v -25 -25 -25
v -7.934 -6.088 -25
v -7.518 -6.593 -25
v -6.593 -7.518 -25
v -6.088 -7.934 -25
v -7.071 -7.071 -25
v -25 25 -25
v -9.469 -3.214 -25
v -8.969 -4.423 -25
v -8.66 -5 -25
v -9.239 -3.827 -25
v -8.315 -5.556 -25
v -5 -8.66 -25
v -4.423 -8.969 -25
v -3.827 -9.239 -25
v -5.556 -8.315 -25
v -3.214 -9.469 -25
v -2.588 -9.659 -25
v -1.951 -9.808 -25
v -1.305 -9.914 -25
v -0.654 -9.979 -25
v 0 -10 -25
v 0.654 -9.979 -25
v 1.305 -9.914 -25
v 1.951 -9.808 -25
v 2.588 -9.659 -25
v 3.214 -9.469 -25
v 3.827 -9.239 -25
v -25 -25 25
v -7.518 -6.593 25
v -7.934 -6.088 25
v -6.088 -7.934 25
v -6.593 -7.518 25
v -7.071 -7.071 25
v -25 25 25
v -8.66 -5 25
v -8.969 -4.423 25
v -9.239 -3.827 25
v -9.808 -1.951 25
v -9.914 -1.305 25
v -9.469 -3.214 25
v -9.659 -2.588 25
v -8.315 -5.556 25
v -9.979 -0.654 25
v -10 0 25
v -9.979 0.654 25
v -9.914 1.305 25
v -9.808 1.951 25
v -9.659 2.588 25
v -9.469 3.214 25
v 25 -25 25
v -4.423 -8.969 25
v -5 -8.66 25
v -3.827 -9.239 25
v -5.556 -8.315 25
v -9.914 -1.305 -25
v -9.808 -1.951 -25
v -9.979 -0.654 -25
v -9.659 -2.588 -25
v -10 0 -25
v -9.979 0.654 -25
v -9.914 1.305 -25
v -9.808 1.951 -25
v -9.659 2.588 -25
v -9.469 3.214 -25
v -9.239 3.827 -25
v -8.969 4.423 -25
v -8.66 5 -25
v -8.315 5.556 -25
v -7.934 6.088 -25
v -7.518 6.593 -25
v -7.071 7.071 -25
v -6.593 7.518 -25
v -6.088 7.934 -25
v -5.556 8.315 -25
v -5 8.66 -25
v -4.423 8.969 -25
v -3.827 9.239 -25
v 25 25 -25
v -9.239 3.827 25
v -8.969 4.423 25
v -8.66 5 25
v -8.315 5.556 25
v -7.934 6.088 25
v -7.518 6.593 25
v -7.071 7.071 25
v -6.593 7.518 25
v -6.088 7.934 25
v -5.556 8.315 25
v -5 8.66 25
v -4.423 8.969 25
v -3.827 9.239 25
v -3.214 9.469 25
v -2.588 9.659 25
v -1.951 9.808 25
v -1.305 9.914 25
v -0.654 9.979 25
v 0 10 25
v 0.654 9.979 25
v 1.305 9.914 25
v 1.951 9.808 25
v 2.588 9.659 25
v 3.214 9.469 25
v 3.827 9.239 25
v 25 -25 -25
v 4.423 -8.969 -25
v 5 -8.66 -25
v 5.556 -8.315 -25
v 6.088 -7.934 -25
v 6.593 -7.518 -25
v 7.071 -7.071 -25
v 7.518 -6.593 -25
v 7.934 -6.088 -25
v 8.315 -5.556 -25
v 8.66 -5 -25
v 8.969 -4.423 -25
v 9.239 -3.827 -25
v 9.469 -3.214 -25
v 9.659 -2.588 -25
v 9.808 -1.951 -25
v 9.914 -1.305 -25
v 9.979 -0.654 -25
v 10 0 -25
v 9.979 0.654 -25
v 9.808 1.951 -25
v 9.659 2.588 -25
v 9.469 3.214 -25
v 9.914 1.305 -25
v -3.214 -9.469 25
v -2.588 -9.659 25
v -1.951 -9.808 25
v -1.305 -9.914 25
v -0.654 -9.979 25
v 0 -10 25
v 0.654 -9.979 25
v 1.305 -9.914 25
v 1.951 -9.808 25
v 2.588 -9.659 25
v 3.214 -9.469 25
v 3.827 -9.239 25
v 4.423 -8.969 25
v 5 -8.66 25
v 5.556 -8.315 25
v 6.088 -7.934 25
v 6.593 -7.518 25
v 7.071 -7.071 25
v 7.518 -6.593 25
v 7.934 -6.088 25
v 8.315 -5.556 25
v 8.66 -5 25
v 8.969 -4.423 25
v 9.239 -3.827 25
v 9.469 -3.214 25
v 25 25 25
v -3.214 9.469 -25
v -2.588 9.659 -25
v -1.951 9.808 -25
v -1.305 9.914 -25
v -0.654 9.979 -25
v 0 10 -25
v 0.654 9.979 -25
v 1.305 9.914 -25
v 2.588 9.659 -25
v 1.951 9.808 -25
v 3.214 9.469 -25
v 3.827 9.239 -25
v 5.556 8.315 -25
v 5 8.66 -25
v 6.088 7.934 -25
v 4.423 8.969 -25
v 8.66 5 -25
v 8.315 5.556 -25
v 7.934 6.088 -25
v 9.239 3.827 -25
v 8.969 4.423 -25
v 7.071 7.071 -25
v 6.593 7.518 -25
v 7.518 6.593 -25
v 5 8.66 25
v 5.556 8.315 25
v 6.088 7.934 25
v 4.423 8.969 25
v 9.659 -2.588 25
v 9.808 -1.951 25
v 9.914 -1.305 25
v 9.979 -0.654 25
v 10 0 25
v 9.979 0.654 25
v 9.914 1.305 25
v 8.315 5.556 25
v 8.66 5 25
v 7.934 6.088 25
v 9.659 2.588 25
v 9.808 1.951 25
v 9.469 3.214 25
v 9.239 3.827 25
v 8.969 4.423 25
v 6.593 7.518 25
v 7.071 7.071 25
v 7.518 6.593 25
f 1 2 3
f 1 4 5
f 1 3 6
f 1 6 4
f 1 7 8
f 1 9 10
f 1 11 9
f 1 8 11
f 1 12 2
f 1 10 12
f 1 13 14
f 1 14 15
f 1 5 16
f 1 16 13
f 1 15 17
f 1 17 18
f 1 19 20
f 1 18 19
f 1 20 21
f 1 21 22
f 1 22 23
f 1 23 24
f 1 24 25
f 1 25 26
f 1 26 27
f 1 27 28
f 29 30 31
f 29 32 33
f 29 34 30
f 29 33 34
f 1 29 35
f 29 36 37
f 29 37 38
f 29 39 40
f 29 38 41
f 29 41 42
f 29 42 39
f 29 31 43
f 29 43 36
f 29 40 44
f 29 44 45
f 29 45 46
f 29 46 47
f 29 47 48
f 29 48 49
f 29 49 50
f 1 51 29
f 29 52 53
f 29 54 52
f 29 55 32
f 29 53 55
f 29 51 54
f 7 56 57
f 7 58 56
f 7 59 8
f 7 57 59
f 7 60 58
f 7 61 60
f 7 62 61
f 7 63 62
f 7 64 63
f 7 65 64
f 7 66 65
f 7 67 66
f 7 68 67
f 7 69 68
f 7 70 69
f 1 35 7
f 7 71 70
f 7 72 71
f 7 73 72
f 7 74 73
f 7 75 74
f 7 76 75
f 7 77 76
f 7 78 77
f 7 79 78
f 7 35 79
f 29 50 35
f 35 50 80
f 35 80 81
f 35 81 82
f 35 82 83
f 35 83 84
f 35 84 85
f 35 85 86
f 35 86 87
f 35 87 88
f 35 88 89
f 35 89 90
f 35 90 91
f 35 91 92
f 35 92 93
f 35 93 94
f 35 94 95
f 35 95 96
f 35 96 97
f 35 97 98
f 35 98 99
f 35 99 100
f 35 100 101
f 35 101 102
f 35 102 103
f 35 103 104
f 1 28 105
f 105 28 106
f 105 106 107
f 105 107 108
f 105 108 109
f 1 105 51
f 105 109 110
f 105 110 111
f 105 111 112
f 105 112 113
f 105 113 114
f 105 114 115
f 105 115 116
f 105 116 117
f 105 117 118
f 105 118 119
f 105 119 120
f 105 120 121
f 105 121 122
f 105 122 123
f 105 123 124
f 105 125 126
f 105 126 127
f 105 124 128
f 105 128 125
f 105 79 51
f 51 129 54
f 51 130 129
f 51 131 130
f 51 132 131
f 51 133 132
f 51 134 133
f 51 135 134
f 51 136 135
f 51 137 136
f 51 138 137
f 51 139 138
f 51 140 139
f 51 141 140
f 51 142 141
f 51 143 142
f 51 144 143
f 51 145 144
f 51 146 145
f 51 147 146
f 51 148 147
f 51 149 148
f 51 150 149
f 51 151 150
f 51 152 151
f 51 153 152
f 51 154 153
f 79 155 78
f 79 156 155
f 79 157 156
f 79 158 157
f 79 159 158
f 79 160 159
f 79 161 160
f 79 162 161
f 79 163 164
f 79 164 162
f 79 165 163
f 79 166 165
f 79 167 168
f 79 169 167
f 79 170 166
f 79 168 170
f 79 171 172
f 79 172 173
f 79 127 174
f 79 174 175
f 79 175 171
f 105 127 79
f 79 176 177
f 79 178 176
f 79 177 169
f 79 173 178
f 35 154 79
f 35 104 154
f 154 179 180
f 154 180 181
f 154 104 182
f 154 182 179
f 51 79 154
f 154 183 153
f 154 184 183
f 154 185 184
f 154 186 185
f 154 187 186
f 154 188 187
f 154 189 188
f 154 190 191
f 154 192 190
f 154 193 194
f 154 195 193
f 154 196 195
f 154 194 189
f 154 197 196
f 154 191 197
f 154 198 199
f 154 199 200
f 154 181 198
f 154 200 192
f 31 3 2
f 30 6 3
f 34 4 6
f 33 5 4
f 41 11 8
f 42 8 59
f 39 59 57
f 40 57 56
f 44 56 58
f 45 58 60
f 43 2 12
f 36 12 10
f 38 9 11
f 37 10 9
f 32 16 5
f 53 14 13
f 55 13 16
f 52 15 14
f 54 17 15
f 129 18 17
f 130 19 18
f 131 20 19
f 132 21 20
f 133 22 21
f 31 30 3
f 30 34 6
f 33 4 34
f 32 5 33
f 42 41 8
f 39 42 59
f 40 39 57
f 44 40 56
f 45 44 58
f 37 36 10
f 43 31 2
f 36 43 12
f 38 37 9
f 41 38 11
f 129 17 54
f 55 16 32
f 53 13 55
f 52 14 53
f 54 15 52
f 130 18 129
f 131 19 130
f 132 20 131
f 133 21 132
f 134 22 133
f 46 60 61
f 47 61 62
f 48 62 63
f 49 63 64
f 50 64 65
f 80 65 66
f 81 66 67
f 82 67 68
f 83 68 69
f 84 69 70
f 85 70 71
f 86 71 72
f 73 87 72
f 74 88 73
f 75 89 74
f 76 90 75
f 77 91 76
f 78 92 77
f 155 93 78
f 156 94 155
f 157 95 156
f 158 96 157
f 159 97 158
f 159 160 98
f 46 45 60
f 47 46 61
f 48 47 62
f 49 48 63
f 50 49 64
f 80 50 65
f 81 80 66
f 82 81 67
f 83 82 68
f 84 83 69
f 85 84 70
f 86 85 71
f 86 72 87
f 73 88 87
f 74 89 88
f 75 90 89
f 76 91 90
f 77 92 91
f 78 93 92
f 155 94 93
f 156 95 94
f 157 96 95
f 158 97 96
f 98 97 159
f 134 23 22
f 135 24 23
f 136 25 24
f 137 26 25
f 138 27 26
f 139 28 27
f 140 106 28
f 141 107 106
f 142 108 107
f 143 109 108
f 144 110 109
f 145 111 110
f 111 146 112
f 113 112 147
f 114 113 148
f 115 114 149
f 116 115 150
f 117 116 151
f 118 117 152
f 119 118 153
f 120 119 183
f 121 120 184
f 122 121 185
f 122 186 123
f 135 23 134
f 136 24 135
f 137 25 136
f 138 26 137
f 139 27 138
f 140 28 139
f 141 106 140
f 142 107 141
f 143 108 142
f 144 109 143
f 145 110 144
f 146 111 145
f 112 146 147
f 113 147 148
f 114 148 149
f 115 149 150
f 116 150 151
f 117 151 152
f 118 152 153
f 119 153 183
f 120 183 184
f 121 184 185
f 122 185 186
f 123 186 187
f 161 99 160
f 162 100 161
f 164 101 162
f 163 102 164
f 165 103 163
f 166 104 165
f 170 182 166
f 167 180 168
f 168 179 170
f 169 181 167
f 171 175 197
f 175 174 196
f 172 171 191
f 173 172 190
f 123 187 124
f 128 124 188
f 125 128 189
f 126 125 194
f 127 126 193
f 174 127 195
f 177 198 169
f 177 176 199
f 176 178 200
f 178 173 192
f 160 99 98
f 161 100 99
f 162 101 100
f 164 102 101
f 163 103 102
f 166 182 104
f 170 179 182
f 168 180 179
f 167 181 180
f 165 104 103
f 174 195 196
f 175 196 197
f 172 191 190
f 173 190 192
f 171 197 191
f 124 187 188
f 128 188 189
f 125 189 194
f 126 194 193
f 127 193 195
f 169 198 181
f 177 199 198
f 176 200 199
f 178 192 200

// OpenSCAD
// 50mm 角の立方体の中央に直径 20mm の貫通穴（z 軸方向）
cube_size = 50;
hole_d    = 20;
$fn       = 96;

difference() {
    cube(cube_size, center = true);
    cylinder(h = cube_size + 2, d = hole_d, center = true);
}
